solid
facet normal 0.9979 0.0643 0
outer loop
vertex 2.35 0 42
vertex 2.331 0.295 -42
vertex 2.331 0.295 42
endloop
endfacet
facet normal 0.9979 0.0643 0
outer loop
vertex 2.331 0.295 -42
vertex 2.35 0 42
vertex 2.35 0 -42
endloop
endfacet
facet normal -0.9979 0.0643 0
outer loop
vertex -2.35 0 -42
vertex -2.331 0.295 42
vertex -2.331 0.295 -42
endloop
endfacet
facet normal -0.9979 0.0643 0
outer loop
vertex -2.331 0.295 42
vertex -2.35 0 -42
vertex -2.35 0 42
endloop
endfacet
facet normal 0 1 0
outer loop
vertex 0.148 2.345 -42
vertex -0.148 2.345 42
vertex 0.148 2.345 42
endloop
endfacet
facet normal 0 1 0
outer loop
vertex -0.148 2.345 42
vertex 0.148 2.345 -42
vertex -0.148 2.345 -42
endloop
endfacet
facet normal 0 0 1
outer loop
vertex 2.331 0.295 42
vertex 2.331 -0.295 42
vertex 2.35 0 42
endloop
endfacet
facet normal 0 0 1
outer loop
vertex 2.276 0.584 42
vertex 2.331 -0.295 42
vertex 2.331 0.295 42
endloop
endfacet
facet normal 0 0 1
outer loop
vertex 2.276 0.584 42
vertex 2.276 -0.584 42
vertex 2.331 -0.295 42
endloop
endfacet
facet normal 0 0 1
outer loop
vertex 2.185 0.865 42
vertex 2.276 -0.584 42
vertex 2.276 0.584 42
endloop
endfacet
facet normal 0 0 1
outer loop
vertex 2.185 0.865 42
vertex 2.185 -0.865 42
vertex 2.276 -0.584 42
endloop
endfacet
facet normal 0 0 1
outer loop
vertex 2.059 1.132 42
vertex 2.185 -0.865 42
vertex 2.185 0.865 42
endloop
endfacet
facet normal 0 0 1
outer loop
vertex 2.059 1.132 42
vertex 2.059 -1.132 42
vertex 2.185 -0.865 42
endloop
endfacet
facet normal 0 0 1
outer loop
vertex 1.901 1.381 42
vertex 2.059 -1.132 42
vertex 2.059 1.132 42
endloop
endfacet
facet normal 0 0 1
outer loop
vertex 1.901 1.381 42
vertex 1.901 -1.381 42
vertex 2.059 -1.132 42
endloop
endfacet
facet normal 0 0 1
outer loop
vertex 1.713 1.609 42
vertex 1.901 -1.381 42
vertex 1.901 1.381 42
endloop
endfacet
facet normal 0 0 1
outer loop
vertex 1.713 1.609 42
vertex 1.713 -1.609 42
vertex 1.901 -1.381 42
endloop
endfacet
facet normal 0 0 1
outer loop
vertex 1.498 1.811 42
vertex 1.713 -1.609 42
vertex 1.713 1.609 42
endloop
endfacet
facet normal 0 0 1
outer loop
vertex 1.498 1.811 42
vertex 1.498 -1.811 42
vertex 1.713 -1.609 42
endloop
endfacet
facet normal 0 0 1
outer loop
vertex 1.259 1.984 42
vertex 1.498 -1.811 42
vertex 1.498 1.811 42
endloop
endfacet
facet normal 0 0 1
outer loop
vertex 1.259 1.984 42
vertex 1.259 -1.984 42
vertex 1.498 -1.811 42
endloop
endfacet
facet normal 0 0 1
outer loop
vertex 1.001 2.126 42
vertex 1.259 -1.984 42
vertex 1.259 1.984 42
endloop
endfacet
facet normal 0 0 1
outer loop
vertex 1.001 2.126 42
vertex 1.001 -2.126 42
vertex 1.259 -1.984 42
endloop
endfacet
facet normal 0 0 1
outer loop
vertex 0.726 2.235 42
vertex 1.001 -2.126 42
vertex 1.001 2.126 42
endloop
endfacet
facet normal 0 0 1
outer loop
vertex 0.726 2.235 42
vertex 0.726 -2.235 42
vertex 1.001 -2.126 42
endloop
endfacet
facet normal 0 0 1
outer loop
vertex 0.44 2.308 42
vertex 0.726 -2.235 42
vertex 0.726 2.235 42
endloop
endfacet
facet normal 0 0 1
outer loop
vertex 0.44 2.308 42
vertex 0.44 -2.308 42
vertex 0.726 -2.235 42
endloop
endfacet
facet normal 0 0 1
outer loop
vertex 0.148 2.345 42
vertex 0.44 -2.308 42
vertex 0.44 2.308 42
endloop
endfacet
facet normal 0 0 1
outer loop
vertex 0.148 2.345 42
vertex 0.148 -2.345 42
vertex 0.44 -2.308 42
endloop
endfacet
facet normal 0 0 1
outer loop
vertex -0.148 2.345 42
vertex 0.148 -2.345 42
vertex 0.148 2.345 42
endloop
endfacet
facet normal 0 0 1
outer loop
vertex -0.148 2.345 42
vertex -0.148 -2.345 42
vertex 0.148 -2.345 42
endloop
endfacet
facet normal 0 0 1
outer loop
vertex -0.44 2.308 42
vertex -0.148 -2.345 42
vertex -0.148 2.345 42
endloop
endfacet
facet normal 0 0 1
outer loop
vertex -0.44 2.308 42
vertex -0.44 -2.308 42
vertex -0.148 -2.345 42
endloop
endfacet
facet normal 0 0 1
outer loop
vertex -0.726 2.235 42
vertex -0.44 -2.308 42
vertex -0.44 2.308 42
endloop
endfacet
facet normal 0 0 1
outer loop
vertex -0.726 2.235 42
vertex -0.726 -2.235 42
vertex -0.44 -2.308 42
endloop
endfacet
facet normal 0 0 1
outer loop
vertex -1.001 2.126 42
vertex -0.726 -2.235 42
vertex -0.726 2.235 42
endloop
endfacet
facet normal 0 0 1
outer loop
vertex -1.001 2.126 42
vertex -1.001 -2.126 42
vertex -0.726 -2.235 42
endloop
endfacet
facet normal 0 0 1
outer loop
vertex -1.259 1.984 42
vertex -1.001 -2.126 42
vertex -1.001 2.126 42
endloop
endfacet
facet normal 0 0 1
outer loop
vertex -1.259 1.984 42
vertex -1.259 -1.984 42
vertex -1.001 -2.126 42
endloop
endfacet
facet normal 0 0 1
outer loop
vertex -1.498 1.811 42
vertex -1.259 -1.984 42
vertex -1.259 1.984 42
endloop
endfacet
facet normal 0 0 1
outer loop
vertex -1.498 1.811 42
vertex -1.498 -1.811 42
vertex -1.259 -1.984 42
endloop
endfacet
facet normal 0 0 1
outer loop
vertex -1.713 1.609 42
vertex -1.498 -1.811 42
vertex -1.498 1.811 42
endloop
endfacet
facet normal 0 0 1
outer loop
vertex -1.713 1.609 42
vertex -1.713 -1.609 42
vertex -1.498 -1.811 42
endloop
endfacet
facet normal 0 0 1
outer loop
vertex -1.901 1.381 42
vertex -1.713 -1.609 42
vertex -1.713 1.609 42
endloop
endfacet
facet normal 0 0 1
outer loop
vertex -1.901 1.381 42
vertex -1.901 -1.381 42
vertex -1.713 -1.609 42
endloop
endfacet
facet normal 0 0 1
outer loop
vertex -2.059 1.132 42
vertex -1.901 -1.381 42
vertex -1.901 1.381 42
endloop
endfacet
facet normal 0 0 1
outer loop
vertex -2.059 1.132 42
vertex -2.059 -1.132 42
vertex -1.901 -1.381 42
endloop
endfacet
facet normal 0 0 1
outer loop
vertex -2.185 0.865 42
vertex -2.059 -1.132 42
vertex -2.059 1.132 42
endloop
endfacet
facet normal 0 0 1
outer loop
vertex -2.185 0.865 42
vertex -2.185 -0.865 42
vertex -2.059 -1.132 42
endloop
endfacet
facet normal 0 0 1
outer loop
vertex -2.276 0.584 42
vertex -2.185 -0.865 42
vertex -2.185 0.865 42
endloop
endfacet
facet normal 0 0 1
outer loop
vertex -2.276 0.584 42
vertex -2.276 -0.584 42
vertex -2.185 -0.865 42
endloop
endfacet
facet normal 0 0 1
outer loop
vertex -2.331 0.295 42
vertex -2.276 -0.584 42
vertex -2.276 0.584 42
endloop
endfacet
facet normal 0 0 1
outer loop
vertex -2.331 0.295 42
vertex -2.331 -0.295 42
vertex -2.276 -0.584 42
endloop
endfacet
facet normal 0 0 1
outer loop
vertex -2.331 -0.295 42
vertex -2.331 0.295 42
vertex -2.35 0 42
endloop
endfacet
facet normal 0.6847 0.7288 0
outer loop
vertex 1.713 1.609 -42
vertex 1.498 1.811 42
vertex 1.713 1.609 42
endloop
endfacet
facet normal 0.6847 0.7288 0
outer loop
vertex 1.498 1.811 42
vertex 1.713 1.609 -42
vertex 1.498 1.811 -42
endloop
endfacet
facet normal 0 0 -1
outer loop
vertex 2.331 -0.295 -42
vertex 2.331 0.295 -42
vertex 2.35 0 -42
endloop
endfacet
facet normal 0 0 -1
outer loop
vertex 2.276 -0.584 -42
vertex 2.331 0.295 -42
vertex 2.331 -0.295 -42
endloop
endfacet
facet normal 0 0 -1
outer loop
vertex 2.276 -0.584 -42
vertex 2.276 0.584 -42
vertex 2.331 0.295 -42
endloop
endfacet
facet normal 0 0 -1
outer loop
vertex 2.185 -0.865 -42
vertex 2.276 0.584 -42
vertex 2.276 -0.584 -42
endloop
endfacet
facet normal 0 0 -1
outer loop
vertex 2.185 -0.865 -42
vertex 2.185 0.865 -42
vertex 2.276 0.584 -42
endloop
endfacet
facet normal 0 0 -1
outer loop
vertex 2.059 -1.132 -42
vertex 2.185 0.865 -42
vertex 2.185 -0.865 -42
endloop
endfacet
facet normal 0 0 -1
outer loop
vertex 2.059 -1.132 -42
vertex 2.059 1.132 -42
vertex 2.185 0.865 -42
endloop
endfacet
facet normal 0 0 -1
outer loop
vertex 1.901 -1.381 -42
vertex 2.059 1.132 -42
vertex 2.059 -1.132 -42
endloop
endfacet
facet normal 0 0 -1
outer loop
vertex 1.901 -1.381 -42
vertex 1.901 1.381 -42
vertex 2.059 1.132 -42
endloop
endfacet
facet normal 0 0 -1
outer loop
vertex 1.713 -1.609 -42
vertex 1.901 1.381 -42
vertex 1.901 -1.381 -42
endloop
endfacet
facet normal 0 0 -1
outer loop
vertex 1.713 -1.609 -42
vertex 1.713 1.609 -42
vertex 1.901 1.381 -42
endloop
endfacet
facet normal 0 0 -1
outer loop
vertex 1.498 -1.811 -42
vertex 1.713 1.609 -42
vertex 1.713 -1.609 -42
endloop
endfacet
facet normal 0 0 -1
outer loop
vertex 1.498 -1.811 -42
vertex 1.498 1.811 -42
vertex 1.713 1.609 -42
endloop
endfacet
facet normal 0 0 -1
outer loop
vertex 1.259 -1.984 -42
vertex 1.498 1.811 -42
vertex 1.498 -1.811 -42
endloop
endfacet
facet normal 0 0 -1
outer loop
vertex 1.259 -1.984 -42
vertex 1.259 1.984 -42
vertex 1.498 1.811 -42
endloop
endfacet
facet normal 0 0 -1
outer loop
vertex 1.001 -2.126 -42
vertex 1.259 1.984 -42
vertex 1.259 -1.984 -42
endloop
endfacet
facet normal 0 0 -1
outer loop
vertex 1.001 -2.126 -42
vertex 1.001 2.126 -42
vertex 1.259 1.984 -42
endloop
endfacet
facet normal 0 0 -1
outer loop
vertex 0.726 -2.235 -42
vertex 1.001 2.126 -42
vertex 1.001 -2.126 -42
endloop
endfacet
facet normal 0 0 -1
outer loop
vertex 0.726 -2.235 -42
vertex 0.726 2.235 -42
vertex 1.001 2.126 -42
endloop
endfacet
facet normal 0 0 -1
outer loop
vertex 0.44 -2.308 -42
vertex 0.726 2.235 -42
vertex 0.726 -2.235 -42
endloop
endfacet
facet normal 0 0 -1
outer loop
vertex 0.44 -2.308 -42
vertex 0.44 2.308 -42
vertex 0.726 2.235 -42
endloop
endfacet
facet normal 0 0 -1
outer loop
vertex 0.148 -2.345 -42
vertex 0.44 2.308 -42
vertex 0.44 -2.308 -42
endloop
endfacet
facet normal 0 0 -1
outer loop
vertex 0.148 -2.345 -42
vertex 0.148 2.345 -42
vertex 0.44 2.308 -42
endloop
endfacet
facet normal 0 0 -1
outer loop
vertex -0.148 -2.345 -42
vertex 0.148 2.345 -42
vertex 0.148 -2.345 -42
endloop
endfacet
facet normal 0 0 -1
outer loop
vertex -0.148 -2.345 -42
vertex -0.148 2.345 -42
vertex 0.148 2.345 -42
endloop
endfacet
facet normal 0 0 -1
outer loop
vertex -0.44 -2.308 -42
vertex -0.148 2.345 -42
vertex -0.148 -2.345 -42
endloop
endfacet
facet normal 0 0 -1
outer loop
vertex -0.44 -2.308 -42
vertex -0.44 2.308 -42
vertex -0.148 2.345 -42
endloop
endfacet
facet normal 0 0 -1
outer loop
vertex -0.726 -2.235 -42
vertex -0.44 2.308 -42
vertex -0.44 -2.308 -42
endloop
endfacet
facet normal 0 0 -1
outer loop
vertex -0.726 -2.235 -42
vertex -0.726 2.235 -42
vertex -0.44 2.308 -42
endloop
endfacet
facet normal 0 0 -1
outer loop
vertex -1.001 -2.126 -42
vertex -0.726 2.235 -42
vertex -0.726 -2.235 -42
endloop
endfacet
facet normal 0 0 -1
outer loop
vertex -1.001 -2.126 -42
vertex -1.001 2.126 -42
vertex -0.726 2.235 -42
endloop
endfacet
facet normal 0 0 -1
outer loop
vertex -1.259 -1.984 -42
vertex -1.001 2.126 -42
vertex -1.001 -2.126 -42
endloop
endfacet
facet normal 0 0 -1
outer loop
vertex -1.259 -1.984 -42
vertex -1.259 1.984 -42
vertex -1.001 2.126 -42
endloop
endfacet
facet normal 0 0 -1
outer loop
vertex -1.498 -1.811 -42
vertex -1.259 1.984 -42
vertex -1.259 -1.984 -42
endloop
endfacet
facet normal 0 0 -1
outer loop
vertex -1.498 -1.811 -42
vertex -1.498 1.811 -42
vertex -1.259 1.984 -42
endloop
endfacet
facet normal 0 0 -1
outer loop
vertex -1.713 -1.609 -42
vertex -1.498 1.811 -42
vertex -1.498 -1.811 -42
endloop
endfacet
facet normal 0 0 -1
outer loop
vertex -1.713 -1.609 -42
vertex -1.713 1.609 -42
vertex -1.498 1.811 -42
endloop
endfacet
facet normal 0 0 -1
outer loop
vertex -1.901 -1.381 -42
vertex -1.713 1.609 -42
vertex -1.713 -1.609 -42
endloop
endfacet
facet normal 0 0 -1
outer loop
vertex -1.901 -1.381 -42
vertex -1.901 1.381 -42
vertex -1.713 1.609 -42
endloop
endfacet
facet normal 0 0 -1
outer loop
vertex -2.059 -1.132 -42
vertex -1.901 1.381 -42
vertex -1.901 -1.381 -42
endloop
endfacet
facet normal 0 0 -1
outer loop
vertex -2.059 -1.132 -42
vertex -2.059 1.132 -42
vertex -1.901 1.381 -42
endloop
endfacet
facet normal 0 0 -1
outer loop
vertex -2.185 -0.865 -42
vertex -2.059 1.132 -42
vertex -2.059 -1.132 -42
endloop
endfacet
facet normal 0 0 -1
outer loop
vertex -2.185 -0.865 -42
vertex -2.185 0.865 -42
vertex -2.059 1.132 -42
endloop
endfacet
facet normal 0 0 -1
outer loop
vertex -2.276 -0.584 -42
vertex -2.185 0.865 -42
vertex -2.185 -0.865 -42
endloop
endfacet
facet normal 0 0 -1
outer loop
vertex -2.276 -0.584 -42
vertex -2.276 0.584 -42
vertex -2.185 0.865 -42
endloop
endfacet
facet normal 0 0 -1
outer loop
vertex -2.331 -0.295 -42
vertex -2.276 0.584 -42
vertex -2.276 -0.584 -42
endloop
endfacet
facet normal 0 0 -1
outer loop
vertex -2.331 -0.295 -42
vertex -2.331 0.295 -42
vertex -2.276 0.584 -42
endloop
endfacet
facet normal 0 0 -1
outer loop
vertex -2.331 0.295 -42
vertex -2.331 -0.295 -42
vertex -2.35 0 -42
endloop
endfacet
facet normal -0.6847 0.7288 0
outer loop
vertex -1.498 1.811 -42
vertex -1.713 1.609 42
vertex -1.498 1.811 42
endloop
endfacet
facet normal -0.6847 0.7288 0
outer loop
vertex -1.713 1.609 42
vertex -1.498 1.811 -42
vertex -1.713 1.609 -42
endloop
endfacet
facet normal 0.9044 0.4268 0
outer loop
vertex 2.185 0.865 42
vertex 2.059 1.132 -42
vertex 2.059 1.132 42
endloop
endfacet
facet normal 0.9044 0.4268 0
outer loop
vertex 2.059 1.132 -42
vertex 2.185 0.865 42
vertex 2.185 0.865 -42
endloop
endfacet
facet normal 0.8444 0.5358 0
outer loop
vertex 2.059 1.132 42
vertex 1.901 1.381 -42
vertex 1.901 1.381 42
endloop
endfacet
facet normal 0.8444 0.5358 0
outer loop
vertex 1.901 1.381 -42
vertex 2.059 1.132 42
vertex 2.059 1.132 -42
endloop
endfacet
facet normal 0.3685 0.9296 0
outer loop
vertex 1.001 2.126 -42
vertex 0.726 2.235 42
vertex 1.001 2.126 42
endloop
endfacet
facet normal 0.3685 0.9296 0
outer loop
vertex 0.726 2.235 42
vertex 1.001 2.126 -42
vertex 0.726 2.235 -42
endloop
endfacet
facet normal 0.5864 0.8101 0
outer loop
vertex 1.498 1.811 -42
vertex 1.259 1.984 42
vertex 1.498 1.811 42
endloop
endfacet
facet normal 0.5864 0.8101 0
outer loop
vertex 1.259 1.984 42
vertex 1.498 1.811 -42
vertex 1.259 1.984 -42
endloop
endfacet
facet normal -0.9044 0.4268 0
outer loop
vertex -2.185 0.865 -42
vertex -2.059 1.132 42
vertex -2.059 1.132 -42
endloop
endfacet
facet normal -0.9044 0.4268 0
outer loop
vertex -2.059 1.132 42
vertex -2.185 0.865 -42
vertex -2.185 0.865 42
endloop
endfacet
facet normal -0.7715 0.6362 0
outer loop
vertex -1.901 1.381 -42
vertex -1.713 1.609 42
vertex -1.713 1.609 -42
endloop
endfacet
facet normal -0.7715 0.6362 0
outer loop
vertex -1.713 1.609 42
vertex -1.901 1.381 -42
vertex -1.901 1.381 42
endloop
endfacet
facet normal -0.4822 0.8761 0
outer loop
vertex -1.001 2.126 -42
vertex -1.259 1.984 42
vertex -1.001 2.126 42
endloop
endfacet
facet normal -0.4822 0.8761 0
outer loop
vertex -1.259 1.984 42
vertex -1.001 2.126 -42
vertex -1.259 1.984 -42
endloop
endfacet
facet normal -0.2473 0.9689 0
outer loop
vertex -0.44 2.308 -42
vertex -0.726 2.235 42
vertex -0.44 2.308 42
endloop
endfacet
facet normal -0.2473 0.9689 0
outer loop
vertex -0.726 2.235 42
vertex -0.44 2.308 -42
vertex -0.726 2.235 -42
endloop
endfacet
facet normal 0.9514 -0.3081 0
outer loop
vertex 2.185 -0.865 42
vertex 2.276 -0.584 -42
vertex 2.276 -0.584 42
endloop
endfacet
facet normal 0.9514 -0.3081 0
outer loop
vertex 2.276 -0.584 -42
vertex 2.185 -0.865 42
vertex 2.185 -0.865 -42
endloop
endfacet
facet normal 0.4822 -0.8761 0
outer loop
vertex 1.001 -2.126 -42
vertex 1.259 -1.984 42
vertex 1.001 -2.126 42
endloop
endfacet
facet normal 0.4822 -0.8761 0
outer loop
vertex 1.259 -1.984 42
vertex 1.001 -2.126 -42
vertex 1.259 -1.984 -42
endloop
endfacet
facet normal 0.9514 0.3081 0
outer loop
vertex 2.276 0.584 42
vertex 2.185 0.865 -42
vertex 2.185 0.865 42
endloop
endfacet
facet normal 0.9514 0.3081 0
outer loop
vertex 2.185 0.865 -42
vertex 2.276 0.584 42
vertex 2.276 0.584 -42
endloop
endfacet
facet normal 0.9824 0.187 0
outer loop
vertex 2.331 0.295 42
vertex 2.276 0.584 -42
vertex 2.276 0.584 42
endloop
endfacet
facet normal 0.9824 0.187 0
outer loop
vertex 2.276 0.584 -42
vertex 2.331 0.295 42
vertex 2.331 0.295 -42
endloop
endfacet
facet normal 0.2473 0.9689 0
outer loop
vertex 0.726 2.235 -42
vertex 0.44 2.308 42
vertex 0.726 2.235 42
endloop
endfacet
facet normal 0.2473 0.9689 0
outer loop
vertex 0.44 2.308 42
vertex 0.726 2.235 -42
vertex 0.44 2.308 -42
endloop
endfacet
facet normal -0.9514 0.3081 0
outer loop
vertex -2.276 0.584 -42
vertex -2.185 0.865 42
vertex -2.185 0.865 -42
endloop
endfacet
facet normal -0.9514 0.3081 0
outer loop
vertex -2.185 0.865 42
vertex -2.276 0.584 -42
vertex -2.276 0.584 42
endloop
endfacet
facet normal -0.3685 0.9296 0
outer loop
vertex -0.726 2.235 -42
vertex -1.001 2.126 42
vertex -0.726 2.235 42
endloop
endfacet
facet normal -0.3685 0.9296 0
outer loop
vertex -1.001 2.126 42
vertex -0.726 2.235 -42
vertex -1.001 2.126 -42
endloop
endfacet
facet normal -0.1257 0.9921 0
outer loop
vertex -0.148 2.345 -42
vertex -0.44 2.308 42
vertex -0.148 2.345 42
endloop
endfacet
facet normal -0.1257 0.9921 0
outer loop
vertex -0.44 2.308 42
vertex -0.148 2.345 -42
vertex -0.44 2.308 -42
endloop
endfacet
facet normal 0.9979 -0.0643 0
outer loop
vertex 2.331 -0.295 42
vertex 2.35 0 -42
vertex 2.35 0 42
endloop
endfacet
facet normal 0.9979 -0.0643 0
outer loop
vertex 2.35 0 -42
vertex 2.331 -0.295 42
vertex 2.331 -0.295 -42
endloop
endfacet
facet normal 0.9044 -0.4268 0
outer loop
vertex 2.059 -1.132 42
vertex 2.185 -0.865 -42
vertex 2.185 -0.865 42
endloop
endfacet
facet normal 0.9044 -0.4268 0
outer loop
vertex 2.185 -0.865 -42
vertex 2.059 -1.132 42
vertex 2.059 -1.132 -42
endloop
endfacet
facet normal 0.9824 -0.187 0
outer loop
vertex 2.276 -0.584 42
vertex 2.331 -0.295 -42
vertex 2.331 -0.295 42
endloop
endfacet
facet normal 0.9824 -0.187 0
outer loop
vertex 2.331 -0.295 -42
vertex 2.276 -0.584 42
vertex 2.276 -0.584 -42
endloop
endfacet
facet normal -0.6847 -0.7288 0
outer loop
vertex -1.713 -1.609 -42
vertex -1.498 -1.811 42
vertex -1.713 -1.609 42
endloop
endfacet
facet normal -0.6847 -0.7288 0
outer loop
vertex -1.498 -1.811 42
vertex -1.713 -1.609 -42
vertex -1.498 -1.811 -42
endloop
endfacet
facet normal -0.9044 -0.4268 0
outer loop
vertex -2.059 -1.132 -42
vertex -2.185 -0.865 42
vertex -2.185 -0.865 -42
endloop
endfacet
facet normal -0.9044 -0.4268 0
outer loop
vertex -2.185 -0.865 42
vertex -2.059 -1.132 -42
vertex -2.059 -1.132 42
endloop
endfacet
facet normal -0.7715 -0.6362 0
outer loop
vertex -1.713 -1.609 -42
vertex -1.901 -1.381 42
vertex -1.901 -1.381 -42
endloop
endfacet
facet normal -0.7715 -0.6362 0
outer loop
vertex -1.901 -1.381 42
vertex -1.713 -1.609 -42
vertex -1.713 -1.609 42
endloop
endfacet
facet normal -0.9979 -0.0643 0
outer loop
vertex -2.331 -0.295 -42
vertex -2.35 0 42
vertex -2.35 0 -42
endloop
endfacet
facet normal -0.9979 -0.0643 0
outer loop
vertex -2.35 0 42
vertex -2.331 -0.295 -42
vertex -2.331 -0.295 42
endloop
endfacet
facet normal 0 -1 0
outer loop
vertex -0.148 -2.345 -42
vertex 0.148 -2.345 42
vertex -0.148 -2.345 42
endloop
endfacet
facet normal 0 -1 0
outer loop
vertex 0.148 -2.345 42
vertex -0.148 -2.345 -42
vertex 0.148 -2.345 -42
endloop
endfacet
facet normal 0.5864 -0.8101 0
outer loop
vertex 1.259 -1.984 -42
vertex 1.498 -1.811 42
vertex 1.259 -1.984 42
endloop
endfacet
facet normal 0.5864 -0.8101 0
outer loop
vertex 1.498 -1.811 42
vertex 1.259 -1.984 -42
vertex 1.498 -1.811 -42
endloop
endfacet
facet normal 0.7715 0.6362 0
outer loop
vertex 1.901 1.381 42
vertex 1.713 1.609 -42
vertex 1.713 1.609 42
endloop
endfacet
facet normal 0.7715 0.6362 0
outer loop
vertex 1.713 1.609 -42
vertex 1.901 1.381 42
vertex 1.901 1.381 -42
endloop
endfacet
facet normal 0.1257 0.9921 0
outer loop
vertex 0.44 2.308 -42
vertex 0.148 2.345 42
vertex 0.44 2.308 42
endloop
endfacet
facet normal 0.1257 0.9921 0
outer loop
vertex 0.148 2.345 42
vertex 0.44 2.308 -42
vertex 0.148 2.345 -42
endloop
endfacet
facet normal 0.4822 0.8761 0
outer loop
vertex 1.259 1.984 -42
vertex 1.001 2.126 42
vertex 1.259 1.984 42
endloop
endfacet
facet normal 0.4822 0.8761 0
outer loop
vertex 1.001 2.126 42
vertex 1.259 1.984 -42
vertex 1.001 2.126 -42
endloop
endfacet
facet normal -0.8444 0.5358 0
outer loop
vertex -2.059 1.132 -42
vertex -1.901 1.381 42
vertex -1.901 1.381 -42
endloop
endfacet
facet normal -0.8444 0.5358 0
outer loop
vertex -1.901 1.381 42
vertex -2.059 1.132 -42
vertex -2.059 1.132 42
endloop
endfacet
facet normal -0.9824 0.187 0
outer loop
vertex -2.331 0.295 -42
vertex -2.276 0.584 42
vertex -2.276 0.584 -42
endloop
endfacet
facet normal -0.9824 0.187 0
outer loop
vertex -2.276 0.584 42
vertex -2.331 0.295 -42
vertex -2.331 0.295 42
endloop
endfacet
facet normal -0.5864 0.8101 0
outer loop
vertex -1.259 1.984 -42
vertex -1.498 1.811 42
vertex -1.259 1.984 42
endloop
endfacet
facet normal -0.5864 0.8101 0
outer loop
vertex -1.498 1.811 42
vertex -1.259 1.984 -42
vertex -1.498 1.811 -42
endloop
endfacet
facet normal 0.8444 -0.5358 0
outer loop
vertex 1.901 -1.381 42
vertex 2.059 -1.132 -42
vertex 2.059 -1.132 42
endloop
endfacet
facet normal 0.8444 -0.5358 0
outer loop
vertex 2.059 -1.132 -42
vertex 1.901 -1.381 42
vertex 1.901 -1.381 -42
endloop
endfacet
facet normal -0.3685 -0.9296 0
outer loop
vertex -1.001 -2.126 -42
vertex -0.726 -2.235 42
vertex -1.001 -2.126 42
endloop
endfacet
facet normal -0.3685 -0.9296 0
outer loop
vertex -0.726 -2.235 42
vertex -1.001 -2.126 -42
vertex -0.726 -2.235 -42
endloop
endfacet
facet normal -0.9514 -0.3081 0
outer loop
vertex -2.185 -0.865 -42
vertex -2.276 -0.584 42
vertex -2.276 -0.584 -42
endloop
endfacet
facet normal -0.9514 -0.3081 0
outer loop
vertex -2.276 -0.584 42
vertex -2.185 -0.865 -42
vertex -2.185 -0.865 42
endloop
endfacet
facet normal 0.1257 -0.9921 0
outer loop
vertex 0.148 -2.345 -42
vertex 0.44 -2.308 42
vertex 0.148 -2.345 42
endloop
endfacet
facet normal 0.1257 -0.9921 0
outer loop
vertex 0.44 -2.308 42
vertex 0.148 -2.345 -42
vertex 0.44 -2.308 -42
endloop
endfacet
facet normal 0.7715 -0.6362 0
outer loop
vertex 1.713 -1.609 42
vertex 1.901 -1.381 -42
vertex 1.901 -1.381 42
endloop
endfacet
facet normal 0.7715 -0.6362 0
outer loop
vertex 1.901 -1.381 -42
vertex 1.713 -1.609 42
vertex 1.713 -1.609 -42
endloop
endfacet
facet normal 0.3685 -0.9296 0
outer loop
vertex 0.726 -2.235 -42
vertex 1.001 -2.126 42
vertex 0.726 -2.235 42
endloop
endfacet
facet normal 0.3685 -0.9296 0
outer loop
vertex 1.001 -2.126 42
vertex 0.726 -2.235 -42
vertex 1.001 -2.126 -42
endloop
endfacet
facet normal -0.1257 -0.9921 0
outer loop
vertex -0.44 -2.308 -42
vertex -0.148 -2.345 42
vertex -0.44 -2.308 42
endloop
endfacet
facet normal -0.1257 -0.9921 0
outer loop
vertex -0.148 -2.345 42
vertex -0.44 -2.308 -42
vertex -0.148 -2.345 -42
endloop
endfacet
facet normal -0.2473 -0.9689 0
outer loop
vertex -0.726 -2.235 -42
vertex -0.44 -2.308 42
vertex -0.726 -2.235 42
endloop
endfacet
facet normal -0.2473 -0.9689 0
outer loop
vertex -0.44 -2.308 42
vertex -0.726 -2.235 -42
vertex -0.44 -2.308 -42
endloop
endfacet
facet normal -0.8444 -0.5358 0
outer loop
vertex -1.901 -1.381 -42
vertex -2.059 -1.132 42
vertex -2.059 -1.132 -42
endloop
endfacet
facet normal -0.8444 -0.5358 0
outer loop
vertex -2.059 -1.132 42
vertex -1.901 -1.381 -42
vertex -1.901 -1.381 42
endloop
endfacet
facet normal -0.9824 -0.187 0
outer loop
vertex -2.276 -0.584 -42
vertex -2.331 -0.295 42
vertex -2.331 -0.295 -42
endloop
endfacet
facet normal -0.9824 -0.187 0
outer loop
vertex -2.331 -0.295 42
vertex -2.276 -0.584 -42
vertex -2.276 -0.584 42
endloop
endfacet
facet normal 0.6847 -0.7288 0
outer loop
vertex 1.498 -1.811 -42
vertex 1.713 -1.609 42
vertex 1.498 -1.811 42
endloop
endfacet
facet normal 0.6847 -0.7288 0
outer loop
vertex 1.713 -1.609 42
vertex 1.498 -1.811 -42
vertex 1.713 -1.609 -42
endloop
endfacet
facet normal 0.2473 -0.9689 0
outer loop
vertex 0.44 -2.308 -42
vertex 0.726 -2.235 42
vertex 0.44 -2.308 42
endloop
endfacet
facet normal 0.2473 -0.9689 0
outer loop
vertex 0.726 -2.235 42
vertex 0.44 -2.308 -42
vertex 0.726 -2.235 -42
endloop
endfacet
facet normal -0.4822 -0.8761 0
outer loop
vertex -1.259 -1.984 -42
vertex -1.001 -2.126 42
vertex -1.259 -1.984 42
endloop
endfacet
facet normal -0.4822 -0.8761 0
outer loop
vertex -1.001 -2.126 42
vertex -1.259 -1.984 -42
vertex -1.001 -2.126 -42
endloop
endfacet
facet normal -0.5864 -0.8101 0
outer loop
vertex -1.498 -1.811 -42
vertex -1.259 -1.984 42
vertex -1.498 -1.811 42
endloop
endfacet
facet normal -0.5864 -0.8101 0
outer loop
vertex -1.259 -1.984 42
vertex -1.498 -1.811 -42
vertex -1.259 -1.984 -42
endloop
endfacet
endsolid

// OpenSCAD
$fn = 50;


difference() {
	union() {
		translate(v = [0, 0, -42.0000000000]) {
			cylinder(h = 84, r = 2.3500000000);
		}
	}
	union() {
		translate(v = [0, 0, -100.0000000000]) {
			cylinder(h = 200, r = 0);
		}
	}
}
